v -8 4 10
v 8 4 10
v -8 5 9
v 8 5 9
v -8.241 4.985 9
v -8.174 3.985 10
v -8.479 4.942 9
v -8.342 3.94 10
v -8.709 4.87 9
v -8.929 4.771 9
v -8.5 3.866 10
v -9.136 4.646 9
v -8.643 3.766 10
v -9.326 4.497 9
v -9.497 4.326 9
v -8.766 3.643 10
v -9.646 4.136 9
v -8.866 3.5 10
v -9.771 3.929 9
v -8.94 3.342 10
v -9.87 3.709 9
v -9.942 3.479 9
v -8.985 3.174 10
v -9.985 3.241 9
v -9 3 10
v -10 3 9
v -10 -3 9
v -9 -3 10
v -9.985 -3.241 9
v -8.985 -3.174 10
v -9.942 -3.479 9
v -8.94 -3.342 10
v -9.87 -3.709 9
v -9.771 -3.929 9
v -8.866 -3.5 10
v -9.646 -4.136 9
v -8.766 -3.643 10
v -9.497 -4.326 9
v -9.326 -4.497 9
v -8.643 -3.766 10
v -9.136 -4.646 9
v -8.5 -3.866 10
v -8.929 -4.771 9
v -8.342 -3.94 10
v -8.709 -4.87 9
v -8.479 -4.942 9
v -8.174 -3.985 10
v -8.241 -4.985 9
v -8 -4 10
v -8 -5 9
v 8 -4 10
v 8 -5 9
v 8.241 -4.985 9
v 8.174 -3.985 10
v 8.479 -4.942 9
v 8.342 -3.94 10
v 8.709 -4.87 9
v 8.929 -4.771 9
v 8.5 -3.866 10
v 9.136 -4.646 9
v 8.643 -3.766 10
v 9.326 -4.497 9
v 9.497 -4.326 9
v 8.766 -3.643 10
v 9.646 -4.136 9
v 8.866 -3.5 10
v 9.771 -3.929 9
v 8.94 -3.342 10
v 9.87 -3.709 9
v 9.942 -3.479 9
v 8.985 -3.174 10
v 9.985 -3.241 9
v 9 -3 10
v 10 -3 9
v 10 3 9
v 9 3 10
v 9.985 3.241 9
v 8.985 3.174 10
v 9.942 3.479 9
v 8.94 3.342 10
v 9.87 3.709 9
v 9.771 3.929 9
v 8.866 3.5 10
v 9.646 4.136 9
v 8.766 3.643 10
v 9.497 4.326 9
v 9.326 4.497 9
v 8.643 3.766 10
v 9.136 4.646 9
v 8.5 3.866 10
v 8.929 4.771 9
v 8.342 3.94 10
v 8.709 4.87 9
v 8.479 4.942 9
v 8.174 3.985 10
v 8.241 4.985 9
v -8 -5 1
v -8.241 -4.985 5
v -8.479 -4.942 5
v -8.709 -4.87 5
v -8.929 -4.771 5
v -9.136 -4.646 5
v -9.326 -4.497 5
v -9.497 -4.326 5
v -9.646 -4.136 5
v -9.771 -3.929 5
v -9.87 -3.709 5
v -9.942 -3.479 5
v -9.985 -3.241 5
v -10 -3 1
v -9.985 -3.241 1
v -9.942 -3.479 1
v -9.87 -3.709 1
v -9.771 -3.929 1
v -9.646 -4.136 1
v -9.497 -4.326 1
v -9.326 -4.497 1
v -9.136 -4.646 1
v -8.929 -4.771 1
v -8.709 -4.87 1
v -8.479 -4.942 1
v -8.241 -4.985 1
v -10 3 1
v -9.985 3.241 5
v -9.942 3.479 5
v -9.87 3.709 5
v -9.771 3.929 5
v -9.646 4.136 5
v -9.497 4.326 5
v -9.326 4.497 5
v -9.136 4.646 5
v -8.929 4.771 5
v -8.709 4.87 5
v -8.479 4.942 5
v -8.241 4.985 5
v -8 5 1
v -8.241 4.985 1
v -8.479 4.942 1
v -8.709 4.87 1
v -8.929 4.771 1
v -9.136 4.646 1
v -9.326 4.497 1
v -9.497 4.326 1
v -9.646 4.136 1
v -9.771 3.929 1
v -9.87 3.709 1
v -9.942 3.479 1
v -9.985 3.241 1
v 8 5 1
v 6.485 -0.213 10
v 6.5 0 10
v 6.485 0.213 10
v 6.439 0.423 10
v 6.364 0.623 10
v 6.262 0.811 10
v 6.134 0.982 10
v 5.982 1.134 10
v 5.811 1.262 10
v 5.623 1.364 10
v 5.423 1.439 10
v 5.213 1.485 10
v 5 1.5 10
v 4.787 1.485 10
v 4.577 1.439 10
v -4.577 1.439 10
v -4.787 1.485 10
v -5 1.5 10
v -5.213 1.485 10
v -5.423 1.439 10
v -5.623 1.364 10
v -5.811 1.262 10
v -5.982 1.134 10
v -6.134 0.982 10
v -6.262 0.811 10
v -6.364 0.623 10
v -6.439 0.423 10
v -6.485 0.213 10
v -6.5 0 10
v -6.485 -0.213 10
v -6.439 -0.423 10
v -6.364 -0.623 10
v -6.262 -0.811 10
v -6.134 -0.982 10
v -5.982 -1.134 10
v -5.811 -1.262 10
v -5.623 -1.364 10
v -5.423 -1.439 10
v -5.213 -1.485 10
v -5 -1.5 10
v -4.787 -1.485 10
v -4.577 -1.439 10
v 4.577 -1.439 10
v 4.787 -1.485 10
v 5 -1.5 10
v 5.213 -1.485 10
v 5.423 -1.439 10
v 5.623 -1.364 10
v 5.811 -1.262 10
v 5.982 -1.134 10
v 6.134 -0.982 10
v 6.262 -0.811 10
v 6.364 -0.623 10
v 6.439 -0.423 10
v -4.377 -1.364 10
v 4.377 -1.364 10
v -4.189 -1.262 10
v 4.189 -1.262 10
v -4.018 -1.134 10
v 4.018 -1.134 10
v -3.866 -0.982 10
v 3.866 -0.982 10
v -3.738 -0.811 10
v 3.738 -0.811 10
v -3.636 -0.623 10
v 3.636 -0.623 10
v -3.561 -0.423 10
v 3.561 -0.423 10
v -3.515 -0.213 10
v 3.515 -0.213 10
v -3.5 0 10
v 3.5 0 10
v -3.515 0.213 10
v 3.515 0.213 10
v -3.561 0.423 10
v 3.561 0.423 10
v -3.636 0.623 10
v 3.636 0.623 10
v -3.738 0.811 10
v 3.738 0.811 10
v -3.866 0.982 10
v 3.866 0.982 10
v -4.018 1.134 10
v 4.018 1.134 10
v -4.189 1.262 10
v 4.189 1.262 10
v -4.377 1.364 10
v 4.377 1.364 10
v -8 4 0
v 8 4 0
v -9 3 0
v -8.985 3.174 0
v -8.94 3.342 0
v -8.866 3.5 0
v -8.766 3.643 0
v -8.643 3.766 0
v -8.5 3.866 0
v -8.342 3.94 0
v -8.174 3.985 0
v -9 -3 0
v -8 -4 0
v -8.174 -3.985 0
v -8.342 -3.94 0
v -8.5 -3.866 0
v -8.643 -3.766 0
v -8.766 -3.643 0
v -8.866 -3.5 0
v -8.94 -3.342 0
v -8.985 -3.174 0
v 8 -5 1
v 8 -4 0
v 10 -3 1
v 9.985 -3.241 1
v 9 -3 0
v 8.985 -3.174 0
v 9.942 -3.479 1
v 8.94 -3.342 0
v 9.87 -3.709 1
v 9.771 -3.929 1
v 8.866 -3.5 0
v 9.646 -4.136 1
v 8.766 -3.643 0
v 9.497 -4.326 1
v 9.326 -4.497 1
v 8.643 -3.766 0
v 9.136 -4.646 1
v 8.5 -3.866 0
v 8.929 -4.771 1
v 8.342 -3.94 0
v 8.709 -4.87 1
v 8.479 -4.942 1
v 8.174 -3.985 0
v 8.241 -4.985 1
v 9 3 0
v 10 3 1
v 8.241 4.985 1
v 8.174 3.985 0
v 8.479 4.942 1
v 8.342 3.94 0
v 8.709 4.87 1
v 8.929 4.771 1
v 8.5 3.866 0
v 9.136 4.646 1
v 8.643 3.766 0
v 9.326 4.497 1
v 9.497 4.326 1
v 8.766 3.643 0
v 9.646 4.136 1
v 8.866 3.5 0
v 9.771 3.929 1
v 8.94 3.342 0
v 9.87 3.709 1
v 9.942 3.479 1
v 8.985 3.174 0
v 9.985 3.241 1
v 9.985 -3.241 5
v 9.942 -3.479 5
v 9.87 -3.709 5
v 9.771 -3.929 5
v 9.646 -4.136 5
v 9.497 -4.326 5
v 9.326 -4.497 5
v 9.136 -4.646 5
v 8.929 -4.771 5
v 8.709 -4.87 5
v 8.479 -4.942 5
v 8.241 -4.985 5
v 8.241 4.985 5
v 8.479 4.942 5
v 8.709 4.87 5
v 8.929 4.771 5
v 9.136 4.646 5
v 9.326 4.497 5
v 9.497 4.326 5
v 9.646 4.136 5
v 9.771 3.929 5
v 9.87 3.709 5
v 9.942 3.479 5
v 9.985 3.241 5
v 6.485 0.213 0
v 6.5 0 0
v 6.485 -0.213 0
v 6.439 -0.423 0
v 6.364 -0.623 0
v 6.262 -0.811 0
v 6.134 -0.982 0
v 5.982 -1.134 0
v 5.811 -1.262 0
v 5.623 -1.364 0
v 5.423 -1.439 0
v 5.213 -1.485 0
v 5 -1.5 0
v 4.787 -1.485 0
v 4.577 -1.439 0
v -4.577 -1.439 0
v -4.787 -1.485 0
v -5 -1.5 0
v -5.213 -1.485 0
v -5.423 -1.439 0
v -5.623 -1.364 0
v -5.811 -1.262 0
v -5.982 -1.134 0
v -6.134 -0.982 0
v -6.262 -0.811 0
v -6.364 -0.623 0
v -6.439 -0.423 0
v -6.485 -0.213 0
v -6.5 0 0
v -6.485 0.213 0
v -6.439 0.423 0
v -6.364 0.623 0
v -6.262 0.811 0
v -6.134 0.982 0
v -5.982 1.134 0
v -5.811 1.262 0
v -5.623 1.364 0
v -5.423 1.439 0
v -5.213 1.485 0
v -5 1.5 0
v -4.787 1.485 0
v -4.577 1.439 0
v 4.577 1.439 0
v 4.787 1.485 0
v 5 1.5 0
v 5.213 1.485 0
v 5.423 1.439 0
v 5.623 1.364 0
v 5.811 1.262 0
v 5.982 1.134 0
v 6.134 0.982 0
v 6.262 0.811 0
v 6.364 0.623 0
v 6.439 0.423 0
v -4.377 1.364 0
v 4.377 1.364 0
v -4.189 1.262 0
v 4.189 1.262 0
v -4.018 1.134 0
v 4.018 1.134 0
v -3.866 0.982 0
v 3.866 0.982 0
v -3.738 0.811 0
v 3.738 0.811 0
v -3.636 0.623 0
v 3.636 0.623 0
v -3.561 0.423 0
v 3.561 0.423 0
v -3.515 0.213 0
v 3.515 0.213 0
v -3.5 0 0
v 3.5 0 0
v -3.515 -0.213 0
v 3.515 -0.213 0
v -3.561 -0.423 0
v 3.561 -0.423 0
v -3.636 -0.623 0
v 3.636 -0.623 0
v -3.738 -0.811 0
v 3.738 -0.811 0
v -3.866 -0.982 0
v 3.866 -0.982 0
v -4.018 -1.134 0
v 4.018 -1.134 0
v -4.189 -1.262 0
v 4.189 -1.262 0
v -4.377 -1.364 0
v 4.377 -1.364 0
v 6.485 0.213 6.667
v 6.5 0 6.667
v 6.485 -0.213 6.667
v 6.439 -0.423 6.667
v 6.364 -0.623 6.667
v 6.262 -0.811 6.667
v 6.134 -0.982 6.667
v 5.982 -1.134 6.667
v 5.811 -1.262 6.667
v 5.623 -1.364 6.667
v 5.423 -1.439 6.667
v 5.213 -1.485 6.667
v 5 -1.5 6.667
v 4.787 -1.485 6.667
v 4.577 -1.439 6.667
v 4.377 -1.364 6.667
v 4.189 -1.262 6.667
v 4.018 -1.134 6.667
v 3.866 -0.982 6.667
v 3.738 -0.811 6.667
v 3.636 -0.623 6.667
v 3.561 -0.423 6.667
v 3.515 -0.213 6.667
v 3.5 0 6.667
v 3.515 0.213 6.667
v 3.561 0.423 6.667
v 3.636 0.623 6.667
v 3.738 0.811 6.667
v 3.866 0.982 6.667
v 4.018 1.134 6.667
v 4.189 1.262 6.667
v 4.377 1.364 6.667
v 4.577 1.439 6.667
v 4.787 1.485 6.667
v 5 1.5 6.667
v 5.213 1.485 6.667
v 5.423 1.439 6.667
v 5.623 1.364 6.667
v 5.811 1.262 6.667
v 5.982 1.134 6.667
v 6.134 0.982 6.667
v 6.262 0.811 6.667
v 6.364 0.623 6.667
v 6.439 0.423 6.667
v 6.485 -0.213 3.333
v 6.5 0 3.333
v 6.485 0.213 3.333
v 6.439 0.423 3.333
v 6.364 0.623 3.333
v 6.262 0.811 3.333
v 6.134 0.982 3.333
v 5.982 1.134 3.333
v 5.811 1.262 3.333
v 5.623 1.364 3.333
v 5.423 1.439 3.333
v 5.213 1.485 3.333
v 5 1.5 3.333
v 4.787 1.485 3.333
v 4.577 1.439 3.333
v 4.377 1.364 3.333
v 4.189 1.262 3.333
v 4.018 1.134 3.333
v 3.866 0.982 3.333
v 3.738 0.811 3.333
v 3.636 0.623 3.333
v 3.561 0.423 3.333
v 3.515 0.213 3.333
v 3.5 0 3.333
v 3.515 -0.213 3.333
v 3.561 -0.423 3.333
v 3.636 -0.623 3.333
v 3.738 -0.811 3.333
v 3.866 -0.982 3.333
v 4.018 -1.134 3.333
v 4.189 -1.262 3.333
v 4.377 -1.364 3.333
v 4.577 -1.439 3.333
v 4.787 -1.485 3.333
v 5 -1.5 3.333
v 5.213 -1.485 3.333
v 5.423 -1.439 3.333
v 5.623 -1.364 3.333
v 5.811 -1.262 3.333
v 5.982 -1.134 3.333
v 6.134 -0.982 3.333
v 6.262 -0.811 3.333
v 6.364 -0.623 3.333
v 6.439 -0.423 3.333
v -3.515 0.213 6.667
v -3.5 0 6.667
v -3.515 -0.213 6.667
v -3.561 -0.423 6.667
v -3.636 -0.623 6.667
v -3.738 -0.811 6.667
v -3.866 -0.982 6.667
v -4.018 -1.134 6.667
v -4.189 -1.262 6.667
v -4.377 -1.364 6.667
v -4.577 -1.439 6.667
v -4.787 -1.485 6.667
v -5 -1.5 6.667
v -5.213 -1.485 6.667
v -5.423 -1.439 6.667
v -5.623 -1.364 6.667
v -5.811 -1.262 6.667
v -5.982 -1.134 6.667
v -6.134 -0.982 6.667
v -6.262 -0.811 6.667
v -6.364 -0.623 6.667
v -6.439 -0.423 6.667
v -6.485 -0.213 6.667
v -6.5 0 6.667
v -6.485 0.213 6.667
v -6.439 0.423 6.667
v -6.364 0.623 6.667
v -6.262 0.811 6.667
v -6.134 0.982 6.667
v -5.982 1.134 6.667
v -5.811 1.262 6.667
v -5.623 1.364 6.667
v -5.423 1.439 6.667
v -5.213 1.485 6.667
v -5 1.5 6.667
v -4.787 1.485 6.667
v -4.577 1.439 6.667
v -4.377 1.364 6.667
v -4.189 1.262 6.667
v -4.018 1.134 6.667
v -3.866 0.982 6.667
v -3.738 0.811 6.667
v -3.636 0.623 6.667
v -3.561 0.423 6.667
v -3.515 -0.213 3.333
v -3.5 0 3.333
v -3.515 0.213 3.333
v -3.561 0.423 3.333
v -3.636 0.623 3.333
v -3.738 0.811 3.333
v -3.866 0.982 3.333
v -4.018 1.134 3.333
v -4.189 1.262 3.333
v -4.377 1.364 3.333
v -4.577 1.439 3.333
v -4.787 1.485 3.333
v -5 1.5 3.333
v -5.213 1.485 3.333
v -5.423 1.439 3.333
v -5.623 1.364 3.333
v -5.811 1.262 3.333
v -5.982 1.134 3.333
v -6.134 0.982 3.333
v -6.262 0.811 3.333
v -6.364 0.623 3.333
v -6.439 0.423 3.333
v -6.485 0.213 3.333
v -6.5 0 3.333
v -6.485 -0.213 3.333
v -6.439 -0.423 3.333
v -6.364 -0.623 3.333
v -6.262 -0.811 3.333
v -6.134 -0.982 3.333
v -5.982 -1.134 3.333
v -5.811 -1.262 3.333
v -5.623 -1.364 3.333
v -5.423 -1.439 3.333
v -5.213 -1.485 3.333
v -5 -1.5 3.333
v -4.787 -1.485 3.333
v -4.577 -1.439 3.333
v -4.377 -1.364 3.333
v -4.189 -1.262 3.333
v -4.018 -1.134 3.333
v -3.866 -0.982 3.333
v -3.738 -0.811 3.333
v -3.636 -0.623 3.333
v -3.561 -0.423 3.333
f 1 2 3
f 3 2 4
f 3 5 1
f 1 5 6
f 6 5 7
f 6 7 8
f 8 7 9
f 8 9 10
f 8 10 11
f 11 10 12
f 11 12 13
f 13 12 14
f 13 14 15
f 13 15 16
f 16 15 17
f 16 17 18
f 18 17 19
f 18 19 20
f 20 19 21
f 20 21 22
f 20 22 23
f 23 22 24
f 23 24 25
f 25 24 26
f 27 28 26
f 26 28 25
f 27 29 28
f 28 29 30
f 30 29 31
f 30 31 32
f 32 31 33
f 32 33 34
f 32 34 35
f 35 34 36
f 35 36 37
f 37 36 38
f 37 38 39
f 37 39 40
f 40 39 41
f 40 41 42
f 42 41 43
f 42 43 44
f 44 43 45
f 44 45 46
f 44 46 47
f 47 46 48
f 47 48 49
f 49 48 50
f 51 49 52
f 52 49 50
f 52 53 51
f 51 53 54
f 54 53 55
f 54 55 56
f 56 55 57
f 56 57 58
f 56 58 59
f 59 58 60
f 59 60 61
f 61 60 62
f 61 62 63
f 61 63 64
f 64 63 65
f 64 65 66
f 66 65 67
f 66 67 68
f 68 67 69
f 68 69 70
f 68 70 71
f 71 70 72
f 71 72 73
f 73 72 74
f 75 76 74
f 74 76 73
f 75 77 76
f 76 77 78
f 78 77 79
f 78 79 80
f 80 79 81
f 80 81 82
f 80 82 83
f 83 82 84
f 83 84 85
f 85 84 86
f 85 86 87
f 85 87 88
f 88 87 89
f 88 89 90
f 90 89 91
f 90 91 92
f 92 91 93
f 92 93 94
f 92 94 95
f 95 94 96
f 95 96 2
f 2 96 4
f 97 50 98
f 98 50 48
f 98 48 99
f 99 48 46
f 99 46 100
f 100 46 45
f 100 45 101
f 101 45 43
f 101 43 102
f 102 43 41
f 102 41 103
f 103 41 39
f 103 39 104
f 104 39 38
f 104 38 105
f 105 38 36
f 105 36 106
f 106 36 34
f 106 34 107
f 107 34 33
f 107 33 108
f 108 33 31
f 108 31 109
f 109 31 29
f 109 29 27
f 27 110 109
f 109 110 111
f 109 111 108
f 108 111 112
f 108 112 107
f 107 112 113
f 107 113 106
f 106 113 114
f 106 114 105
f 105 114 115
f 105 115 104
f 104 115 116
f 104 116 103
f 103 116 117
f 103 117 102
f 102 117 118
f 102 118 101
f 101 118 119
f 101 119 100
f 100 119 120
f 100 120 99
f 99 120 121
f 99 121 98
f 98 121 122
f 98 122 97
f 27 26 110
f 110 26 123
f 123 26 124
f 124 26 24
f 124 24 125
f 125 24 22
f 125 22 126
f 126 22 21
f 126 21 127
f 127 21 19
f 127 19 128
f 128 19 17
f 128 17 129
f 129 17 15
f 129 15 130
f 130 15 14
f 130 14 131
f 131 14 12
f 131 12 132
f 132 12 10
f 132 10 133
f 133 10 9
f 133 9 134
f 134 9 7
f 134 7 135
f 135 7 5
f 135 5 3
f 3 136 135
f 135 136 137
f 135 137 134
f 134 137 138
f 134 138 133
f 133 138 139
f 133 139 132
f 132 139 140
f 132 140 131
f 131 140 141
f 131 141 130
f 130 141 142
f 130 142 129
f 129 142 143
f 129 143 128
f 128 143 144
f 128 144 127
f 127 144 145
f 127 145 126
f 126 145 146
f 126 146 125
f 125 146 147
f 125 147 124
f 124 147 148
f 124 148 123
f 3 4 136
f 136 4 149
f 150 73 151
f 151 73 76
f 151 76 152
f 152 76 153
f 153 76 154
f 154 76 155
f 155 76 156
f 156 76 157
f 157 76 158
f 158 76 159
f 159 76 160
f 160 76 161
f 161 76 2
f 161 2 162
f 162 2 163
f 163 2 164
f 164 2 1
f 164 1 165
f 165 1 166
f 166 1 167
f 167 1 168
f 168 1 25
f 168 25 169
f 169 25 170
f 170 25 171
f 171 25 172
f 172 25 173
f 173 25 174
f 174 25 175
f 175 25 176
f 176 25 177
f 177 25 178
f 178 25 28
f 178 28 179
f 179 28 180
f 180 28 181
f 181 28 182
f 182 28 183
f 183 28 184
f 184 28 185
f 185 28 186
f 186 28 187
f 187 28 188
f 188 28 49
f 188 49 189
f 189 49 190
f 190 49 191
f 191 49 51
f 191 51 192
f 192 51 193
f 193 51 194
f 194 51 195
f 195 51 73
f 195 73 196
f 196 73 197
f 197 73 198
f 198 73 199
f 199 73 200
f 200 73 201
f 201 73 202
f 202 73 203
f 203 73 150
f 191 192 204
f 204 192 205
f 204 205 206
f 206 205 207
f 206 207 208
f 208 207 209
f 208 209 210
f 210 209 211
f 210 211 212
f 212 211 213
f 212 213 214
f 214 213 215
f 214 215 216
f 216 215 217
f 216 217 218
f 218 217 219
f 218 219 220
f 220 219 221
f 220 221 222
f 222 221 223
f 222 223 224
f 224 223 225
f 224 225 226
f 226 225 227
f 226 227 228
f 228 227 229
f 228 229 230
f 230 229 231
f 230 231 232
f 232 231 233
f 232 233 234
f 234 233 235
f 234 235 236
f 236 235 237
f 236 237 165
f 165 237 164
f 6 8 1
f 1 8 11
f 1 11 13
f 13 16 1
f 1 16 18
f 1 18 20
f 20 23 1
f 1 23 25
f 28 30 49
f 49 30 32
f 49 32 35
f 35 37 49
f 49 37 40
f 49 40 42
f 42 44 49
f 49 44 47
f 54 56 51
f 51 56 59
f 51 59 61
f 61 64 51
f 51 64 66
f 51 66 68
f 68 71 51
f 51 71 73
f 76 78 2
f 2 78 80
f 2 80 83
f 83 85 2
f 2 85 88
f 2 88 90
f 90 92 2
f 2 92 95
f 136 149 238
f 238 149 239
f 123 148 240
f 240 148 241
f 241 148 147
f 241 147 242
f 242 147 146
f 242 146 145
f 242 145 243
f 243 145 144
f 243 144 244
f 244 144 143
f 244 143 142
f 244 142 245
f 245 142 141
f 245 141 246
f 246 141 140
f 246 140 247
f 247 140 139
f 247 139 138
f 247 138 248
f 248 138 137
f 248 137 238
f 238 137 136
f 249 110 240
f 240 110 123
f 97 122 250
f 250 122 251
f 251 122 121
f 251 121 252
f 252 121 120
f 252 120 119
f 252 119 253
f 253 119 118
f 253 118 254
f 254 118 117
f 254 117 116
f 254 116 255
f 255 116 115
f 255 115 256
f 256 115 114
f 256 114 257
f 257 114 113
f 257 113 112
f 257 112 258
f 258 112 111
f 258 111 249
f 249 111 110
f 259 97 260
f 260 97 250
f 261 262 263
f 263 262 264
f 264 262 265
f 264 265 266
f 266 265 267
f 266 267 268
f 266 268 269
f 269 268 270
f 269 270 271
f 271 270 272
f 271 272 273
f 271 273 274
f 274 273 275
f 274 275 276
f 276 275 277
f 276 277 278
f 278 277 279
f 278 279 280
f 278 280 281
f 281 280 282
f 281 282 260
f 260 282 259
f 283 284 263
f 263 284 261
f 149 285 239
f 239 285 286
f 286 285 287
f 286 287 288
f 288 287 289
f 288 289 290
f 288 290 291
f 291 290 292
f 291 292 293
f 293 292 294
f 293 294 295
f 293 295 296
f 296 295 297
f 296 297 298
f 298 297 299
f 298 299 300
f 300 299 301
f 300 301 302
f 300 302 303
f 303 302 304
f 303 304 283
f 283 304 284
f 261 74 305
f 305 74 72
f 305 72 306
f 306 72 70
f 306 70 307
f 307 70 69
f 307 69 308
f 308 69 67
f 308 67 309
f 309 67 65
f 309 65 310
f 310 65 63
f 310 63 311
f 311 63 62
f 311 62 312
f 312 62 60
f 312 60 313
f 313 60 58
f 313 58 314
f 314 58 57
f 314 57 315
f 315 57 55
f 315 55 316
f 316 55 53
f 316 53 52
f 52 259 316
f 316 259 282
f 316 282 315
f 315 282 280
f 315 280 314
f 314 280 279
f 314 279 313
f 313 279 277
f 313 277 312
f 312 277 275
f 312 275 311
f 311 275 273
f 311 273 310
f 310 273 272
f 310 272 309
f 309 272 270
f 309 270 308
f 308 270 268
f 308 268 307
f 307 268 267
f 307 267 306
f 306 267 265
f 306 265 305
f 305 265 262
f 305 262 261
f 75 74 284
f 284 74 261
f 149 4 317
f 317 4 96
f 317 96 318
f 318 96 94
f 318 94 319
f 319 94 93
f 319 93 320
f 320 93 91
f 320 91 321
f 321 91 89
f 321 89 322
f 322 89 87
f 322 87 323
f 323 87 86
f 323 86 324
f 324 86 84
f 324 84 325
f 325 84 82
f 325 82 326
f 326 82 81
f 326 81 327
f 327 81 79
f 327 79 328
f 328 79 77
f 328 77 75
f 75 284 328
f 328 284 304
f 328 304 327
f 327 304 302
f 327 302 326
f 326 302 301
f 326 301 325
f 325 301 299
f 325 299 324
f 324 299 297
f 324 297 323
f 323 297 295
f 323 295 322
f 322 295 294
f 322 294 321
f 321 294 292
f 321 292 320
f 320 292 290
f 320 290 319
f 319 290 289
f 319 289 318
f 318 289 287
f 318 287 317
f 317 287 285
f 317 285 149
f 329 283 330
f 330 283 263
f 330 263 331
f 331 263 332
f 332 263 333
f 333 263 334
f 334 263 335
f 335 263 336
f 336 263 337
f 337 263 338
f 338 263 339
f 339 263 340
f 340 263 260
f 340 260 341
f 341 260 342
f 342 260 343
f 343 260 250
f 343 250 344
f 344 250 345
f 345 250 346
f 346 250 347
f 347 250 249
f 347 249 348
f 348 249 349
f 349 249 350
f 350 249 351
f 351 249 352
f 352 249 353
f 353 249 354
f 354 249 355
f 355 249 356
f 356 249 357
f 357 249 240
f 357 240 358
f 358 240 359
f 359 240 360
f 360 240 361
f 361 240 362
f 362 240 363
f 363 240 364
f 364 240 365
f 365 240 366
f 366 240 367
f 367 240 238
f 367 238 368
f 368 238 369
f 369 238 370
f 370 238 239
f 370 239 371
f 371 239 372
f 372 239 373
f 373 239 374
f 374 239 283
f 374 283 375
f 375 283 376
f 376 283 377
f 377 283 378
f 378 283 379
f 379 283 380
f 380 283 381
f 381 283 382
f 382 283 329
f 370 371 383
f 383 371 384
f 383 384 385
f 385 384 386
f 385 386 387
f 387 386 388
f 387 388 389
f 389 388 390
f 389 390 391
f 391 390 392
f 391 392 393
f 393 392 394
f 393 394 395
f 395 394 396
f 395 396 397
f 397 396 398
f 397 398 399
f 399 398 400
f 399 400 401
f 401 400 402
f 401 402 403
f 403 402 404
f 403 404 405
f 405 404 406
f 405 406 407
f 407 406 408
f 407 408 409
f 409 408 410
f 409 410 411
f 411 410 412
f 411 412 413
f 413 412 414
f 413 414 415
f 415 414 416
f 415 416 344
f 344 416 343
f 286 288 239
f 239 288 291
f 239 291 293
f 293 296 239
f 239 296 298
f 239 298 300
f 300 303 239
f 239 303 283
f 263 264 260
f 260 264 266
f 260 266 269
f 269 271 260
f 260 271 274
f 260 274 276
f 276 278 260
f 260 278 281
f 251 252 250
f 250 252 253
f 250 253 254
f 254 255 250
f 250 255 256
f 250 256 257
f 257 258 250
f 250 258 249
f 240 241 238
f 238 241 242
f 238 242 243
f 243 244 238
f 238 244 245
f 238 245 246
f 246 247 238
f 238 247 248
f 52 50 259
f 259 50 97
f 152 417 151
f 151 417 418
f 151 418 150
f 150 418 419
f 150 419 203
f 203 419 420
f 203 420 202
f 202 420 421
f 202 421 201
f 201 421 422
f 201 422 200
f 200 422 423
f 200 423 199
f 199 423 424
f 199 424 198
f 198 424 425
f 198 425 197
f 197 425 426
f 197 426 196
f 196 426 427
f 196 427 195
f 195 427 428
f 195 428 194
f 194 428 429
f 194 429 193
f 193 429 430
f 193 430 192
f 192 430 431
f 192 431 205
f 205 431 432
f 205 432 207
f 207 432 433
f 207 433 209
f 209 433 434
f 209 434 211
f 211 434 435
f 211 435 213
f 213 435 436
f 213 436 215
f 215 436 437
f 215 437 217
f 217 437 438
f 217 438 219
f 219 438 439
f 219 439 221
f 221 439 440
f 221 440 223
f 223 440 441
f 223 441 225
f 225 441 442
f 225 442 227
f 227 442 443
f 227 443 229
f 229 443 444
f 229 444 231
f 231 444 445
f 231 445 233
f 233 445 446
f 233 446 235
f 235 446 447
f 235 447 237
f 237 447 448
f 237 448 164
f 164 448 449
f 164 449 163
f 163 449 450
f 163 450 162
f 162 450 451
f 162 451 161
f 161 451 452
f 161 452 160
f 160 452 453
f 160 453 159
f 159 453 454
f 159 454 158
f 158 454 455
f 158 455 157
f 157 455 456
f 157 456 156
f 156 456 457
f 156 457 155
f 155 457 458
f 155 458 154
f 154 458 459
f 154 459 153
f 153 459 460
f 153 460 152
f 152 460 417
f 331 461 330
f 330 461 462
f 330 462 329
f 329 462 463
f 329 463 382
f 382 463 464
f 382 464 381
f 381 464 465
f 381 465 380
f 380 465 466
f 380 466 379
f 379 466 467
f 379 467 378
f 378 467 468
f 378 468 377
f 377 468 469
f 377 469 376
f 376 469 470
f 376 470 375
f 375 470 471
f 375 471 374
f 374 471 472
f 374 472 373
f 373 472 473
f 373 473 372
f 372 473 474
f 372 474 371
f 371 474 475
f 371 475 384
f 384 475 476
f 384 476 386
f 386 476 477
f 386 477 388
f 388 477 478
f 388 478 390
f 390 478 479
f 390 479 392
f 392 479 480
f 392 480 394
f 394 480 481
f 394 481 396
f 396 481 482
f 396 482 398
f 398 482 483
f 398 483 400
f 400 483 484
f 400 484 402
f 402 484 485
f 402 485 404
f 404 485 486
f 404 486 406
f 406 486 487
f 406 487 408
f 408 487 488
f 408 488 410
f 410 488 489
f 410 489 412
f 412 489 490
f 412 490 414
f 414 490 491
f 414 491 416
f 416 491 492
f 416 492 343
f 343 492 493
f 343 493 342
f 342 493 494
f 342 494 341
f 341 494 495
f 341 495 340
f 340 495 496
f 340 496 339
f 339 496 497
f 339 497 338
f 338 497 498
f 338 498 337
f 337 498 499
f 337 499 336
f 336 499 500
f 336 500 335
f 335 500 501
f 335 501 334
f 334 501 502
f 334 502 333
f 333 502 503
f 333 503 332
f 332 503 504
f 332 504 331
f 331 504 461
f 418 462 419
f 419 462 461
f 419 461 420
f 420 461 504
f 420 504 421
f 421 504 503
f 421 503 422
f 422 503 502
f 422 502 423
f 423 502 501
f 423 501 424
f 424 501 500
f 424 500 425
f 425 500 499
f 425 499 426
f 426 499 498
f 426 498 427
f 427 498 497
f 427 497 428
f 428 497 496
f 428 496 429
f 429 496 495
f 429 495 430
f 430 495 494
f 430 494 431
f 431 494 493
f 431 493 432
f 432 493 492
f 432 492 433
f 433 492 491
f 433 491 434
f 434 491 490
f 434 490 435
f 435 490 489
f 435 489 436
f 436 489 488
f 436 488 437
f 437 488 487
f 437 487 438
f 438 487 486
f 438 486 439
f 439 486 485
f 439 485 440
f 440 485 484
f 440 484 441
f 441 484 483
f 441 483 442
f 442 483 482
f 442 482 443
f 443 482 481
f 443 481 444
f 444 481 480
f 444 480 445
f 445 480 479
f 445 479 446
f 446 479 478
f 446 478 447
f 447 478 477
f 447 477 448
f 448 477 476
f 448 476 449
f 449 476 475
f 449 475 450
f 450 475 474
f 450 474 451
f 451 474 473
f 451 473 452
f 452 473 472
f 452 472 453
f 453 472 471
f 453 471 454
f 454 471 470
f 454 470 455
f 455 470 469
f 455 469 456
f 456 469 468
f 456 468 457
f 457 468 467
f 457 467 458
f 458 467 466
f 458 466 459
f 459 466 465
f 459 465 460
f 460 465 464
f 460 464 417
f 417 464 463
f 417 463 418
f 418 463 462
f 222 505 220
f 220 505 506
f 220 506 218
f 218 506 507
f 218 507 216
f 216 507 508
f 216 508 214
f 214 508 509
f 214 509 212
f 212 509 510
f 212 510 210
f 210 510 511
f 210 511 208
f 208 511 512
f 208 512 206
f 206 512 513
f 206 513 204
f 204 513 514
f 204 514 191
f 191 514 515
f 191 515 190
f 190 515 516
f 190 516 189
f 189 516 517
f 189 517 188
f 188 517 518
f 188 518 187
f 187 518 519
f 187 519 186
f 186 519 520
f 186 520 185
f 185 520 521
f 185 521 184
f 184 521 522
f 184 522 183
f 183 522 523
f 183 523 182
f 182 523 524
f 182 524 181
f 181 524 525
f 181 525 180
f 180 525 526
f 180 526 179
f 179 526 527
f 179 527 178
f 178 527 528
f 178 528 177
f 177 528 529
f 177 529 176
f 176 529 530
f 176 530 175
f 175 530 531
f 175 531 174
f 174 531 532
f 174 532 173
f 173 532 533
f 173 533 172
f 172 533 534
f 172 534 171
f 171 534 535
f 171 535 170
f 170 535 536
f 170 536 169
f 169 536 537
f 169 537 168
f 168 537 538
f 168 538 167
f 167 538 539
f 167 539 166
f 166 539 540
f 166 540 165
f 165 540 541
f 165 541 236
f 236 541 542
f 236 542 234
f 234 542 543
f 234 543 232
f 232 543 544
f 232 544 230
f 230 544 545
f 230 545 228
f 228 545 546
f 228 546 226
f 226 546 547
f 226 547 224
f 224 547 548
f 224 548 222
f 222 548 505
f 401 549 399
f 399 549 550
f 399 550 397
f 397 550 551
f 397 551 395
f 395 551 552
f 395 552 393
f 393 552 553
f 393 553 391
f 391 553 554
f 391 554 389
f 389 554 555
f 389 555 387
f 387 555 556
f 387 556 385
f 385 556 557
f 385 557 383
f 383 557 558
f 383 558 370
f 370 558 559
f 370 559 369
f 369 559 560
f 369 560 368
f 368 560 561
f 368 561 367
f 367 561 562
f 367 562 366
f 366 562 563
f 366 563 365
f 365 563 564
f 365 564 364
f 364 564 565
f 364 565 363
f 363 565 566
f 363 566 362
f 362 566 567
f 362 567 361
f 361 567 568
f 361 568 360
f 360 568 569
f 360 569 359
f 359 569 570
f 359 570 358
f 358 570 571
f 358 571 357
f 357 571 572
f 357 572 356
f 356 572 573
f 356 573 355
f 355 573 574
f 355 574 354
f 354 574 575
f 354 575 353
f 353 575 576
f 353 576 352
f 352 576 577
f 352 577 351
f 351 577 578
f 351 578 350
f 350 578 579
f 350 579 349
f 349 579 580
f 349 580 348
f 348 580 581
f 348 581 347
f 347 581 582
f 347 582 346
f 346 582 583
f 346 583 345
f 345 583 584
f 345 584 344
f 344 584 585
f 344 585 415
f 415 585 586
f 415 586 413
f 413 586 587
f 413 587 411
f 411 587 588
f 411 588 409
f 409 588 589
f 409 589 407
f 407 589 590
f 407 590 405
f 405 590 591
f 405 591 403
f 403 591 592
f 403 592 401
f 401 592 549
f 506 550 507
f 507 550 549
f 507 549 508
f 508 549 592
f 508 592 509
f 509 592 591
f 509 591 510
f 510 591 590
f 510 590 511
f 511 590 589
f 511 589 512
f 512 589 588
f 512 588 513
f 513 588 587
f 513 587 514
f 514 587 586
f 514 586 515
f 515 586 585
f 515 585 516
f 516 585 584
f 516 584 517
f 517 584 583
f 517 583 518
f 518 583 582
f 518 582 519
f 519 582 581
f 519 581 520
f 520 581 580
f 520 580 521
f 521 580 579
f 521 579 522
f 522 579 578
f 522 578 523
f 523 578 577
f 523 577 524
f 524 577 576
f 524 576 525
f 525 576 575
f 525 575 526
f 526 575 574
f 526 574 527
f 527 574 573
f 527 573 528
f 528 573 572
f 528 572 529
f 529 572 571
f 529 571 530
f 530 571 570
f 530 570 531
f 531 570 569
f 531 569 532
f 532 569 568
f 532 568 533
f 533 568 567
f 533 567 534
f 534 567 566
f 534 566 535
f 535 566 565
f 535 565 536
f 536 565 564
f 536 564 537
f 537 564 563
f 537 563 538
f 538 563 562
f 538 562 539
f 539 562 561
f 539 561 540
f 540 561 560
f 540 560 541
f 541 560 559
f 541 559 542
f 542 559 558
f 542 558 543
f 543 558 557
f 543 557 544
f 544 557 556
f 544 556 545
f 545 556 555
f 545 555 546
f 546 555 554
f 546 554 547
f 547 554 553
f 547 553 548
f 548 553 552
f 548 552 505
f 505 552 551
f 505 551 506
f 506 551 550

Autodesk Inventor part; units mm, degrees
ref_plane "YZ Plane" through (0, 0, 0) normal (1, 0, 0) x (0, 1, 0)
ref_plane "XZ Plane" through (0, 0, 0) normal (0, 1, 0) x (-1, 0, 0)
ref_plane "XY Plane" through (0, 0, 0) normal (0, 0, 1) x (1, 0, 0)
sketch "스케치1" plane through (0, 0, 0) normal (0, 0, 1) x (1, 0, 0)
  line L0 (-10, -5) -> (10, -5)
  line L1 (10, -5) -> (10, 5)
  line L2 (10, 5) -> (-10, 5)
  line L3 (-10, 5) -> (-10, -5)
  line L4 (-10, -5) -> (10, 5) construction
  line L5 (10, -5) -> (-10, 5) construction
  circle A0 centre (-5, 0) radius 1.5
  circle A1 centre (5, 0) radius 1.5
  point P0 (0, 0)
  dimension "d0" = 10
  dimension "d1" = 20
  dimension "d2" = 3
  dimension "d3" = 5
  dimension "d4" = 5
extrude "돌출1" add sketch "스케치1" along normal blind 10
fillet "모깎기1" radius 2 4 edges at (-10, 5, 5) (-10, -5, 5) (10, -5, 5) (10, 5, 5)
chamfer "모따기1" distance 1 angle 45 16 edges at (0, 5, 0) (-9.4142, 4.4142, 0) (-10, 0, 0) (-9.4142, -4.4142, 0) (0, -5, 0) (9.4142, -4.4142, 0) (10, 0, 0) (9.4142, 4.4142, 0) (0, 5, 10) (-9.4142, 4.4142, 10) (-10, 0, 10) (-9.4142, -4.4142, 10) (0, -5, 10) (9.4142, -4.4142, 10) (10, 0, 10) (9.4142, 4.4142, 10)
properties part number "RobotBaseConnector1x2_3D 인쇄"
